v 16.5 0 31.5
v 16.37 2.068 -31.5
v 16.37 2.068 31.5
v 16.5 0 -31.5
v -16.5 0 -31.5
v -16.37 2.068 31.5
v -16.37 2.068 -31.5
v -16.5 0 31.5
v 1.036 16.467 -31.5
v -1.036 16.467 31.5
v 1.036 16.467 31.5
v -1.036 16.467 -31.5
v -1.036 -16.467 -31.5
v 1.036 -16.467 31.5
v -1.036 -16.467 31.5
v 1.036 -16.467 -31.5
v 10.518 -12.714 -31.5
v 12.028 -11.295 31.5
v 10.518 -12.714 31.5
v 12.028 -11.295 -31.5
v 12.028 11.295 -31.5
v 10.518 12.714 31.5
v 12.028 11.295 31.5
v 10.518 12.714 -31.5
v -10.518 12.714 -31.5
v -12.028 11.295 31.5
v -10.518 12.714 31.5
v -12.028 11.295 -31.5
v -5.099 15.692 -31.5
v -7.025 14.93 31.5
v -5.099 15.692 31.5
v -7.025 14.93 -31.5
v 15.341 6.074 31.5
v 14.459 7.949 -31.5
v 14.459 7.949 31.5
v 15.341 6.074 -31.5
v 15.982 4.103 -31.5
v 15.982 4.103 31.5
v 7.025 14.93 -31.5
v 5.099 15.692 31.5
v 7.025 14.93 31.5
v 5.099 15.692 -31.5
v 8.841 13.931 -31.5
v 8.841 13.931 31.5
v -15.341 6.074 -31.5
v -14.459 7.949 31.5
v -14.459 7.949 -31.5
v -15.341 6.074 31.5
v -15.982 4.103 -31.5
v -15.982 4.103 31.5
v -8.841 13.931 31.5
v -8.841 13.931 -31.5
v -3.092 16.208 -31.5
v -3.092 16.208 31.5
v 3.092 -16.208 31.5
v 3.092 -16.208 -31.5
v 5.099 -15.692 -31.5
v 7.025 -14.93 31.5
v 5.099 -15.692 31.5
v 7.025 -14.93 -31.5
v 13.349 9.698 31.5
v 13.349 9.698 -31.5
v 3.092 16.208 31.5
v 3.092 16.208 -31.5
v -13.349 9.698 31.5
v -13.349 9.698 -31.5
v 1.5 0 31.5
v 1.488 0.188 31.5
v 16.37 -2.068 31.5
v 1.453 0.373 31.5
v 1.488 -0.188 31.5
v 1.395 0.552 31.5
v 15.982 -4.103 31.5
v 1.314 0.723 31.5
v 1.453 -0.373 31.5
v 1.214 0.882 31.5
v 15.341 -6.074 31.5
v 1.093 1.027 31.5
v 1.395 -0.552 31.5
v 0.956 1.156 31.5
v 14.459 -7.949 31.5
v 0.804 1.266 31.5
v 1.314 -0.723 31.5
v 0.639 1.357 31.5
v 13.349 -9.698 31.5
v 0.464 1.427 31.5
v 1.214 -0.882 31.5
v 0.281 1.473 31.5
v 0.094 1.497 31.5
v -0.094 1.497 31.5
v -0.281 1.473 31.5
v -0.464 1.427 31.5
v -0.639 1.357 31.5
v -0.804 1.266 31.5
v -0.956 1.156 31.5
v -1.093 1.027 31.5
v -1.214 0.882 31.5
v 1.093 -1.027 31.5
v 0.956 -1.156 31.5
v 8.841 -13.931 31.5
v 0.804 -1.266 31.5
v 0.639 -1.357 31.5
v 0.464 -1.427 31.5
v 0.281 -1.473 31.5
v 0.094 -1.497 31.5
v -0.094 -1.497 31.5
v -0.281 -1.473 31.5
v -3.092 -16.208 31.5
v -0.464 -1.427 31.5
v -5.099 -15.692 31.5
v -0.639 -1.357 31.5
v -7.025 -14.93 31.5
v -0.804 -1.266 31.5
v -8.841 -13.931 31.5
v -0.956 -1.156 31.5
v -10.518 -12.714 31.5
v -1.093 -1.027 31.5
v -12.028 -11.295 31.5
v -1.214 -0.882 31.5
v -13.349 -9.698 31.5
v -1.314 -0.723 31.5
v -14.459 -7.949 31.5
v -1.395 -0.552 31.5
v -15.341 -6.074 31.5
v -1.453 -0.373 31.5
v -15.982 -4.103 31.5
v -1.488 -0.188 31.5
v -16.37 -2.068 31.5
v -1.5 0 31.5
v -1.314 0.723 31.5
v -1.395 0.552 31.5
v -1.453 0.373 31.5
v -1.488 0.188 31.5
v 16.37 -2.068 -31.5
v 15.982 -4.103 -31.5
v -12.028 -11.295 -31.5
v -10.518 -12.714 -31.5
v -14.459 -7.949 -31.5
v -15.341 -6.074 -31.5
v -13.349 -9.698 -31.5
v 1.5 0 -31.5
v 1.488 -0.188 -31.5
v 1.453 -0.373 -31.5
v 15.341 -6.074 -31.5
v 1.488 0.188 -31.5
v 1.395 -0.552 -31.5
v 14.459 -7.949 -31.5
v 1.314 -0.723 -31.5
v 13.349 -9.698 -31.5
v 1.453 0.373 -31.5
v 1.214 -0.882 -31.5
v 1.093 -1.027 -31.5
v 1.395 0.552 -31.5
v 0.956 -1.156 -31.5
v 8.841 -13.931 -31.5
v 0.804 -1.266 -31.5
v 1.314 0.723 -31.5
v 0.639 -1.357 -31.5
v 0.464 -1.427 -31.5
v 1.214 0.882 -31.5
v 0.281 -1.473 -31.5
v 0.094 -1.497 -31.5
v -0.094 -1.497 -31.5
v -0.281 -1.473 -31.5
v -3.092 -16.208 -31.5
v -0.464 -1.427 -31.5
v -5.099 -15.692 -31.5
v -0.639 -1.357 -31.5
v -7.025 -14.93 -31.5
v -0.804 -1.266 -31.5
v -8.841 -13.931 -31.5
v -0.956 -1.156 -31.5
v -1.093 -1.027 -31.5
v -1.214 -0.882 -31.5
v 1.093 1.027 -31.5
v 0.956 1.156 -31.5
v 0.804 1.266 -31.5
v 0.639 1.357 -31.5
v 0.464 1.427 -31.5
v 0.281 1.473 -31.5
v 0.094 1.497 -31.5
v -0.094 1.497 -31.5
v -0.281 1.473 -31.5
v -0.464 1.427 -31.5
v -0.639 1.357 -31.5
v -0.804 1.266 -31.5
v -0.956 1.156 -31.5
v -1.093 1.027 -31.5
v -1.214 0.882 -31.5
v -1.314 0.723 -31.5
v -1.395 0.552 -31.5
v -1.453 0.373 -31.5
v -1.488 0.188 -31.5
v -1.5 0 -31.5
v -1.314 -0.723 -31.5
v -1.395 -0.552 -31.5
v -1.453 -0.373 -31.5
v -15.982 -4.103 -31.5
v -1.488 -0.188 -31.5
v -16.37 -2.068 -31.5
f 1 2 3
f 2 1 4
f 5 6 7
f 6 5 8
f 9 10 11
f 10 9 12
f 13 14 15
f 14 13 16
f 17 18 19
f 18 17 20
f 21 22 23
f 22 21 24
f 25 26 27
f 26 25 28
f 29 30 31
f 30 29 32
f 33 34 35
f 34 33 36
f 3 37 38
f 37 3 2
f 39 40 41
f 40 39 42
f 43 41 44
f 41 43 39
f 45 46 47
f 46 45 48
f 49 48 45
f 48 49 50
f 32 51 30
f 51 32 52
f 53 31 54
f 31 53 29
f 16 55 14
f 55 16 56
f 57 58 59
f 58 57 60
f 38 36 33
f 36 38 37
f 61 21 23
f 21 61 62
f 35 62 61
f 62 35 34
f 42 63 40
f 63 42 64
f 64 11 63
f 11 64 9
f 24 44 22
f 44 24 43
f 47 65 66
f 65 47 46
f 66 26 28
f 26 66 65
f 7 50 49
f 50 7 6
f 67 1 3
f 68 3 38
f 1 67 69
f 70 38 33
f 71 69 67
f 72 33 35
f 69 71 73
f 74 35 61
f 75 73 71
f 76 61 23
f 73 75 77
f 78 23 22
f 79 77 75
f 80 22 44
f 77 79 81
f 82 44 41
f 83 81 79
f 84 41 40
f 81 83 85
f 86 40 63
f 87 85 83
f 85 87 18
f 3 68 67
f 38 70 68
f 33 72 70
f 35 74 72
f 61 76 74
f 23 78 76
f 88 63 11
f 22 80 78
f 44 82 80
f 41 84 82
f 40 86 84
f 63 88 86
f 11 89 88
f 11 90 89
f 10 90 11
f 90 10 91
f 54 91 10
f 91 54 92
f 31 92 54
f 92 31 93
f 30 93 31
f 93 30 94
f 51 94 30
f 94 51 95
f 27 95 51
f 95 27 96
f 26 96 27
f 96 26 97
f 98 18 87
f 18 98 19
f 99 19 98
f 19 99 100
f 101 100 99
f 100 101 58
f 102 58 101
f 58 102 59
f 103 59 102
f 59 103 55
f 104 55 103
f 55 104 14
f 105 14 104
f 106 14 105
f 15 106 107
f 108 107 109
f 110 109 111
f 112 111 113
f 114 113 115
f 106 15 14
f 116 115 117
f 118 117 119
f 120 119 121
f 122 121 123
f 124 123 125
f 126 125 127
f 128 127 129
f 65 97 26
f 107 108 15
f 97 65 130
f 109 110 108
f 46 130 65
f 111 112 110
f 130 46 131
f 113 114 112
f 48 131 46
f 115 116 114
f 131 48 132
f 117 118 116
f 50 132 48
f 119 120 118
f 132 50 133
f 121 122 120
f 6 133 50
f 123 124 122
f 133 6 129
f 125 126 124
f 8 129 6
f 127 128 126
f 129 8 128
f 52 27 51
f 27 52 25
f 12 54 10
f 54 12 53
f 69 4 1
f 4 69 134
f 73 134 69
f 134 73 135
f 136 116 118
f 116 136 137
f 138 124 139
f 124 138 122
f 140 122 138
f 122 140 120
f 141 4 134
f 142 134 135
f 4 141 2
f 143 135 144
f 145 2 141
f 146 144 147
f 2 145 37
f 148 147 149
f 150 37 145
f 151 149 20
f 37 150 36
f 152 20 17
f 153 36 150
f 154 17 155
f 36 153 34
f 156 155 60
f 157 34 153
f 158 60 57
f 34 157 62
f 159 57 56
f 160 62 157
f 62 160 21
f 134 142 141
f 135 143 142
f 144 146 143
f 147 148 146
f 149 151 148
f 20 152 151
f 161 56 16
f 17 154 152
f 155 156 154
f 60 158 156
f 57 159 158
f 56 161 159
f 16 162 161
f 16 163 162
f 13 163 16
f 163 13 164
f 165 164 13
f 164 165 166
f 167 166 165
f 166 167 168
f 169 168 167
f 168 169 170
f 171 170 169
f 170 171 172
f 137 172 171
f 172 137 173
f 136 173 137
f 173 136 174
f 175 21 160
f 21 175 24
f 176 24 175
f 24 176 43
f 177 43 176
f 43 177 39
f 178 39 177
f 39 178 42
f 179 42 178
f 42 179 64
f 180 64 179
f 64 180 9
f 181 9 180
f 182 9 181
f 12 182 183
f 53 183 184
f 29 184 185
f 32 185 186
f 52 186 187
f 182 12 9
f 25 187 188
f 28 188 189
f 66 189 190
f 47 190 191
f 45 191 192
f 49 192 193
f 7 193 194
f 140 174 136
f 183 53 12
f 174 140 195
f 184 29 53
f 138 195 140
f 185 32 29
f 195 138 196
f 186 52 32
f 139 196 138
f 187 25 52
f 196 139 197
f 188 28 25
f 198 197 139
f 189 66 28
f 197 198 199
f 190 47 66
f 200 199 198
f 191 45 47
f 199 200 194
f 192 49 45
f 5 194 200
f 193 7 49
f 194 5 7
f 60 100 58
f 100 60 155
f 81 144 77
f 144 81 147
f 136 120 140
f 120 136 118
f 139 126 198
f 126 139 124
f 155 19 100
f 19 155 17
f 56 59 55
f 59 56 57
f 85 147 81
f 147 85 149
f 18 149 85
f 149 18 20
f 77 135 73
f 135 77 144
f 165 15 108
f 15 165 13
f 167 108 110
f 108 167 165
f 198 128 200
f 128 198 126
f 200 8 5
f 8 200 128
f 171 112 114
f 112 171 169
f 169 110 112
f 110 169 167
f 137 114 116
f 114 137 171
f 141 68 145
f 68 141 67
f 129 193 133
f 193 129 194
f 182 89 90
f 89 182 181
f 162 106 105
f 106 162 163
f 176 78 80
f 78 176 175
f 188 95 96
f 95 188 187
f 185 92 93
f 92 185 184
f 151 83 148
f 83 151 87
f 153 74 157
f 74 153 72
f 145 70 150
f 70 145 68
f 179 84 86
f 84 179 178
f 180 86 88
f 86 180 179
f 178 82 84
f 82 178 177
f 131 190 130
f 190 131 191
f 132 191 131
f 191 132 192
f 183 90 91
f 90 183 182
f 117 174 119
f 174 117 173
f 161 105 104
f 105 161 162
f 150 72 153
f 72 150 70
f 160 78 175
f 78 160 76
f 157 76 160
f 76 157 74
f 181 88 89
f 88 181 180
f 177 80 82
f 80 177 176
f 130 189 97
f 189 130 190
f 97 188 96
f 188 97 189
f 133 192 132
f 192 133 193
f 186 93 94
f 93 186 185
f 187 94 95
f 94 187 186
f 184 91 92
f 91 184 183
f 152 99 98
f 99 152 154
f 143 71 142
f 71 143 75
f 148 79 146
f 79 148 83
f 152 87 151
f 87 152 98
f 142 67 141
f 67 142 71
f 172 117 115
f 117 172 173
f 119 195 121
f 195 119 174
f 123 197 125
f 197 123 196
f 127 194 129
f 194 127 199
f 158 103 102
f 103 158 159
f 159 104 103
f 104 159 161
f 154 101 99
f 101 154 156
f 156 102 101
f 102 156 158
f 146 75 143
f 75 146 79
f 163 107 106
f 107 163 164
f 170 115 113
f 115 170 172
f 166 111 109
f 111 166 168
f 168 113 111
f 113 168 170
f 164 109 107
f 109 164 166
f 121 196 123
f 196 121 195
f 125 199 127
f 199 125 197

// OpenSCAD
$fn = 50;


difference() {
	union() {
		translate(v = [0, 0, -31.5000000000]) {
			cylinder(h = 63, r = 16.5000000000);
		}
	}
	union() {
		translate(v = [0, 0, -100.0000000000]) {
			cylinder(h = 200, r = 1.5000000000);
		}
	}
}
